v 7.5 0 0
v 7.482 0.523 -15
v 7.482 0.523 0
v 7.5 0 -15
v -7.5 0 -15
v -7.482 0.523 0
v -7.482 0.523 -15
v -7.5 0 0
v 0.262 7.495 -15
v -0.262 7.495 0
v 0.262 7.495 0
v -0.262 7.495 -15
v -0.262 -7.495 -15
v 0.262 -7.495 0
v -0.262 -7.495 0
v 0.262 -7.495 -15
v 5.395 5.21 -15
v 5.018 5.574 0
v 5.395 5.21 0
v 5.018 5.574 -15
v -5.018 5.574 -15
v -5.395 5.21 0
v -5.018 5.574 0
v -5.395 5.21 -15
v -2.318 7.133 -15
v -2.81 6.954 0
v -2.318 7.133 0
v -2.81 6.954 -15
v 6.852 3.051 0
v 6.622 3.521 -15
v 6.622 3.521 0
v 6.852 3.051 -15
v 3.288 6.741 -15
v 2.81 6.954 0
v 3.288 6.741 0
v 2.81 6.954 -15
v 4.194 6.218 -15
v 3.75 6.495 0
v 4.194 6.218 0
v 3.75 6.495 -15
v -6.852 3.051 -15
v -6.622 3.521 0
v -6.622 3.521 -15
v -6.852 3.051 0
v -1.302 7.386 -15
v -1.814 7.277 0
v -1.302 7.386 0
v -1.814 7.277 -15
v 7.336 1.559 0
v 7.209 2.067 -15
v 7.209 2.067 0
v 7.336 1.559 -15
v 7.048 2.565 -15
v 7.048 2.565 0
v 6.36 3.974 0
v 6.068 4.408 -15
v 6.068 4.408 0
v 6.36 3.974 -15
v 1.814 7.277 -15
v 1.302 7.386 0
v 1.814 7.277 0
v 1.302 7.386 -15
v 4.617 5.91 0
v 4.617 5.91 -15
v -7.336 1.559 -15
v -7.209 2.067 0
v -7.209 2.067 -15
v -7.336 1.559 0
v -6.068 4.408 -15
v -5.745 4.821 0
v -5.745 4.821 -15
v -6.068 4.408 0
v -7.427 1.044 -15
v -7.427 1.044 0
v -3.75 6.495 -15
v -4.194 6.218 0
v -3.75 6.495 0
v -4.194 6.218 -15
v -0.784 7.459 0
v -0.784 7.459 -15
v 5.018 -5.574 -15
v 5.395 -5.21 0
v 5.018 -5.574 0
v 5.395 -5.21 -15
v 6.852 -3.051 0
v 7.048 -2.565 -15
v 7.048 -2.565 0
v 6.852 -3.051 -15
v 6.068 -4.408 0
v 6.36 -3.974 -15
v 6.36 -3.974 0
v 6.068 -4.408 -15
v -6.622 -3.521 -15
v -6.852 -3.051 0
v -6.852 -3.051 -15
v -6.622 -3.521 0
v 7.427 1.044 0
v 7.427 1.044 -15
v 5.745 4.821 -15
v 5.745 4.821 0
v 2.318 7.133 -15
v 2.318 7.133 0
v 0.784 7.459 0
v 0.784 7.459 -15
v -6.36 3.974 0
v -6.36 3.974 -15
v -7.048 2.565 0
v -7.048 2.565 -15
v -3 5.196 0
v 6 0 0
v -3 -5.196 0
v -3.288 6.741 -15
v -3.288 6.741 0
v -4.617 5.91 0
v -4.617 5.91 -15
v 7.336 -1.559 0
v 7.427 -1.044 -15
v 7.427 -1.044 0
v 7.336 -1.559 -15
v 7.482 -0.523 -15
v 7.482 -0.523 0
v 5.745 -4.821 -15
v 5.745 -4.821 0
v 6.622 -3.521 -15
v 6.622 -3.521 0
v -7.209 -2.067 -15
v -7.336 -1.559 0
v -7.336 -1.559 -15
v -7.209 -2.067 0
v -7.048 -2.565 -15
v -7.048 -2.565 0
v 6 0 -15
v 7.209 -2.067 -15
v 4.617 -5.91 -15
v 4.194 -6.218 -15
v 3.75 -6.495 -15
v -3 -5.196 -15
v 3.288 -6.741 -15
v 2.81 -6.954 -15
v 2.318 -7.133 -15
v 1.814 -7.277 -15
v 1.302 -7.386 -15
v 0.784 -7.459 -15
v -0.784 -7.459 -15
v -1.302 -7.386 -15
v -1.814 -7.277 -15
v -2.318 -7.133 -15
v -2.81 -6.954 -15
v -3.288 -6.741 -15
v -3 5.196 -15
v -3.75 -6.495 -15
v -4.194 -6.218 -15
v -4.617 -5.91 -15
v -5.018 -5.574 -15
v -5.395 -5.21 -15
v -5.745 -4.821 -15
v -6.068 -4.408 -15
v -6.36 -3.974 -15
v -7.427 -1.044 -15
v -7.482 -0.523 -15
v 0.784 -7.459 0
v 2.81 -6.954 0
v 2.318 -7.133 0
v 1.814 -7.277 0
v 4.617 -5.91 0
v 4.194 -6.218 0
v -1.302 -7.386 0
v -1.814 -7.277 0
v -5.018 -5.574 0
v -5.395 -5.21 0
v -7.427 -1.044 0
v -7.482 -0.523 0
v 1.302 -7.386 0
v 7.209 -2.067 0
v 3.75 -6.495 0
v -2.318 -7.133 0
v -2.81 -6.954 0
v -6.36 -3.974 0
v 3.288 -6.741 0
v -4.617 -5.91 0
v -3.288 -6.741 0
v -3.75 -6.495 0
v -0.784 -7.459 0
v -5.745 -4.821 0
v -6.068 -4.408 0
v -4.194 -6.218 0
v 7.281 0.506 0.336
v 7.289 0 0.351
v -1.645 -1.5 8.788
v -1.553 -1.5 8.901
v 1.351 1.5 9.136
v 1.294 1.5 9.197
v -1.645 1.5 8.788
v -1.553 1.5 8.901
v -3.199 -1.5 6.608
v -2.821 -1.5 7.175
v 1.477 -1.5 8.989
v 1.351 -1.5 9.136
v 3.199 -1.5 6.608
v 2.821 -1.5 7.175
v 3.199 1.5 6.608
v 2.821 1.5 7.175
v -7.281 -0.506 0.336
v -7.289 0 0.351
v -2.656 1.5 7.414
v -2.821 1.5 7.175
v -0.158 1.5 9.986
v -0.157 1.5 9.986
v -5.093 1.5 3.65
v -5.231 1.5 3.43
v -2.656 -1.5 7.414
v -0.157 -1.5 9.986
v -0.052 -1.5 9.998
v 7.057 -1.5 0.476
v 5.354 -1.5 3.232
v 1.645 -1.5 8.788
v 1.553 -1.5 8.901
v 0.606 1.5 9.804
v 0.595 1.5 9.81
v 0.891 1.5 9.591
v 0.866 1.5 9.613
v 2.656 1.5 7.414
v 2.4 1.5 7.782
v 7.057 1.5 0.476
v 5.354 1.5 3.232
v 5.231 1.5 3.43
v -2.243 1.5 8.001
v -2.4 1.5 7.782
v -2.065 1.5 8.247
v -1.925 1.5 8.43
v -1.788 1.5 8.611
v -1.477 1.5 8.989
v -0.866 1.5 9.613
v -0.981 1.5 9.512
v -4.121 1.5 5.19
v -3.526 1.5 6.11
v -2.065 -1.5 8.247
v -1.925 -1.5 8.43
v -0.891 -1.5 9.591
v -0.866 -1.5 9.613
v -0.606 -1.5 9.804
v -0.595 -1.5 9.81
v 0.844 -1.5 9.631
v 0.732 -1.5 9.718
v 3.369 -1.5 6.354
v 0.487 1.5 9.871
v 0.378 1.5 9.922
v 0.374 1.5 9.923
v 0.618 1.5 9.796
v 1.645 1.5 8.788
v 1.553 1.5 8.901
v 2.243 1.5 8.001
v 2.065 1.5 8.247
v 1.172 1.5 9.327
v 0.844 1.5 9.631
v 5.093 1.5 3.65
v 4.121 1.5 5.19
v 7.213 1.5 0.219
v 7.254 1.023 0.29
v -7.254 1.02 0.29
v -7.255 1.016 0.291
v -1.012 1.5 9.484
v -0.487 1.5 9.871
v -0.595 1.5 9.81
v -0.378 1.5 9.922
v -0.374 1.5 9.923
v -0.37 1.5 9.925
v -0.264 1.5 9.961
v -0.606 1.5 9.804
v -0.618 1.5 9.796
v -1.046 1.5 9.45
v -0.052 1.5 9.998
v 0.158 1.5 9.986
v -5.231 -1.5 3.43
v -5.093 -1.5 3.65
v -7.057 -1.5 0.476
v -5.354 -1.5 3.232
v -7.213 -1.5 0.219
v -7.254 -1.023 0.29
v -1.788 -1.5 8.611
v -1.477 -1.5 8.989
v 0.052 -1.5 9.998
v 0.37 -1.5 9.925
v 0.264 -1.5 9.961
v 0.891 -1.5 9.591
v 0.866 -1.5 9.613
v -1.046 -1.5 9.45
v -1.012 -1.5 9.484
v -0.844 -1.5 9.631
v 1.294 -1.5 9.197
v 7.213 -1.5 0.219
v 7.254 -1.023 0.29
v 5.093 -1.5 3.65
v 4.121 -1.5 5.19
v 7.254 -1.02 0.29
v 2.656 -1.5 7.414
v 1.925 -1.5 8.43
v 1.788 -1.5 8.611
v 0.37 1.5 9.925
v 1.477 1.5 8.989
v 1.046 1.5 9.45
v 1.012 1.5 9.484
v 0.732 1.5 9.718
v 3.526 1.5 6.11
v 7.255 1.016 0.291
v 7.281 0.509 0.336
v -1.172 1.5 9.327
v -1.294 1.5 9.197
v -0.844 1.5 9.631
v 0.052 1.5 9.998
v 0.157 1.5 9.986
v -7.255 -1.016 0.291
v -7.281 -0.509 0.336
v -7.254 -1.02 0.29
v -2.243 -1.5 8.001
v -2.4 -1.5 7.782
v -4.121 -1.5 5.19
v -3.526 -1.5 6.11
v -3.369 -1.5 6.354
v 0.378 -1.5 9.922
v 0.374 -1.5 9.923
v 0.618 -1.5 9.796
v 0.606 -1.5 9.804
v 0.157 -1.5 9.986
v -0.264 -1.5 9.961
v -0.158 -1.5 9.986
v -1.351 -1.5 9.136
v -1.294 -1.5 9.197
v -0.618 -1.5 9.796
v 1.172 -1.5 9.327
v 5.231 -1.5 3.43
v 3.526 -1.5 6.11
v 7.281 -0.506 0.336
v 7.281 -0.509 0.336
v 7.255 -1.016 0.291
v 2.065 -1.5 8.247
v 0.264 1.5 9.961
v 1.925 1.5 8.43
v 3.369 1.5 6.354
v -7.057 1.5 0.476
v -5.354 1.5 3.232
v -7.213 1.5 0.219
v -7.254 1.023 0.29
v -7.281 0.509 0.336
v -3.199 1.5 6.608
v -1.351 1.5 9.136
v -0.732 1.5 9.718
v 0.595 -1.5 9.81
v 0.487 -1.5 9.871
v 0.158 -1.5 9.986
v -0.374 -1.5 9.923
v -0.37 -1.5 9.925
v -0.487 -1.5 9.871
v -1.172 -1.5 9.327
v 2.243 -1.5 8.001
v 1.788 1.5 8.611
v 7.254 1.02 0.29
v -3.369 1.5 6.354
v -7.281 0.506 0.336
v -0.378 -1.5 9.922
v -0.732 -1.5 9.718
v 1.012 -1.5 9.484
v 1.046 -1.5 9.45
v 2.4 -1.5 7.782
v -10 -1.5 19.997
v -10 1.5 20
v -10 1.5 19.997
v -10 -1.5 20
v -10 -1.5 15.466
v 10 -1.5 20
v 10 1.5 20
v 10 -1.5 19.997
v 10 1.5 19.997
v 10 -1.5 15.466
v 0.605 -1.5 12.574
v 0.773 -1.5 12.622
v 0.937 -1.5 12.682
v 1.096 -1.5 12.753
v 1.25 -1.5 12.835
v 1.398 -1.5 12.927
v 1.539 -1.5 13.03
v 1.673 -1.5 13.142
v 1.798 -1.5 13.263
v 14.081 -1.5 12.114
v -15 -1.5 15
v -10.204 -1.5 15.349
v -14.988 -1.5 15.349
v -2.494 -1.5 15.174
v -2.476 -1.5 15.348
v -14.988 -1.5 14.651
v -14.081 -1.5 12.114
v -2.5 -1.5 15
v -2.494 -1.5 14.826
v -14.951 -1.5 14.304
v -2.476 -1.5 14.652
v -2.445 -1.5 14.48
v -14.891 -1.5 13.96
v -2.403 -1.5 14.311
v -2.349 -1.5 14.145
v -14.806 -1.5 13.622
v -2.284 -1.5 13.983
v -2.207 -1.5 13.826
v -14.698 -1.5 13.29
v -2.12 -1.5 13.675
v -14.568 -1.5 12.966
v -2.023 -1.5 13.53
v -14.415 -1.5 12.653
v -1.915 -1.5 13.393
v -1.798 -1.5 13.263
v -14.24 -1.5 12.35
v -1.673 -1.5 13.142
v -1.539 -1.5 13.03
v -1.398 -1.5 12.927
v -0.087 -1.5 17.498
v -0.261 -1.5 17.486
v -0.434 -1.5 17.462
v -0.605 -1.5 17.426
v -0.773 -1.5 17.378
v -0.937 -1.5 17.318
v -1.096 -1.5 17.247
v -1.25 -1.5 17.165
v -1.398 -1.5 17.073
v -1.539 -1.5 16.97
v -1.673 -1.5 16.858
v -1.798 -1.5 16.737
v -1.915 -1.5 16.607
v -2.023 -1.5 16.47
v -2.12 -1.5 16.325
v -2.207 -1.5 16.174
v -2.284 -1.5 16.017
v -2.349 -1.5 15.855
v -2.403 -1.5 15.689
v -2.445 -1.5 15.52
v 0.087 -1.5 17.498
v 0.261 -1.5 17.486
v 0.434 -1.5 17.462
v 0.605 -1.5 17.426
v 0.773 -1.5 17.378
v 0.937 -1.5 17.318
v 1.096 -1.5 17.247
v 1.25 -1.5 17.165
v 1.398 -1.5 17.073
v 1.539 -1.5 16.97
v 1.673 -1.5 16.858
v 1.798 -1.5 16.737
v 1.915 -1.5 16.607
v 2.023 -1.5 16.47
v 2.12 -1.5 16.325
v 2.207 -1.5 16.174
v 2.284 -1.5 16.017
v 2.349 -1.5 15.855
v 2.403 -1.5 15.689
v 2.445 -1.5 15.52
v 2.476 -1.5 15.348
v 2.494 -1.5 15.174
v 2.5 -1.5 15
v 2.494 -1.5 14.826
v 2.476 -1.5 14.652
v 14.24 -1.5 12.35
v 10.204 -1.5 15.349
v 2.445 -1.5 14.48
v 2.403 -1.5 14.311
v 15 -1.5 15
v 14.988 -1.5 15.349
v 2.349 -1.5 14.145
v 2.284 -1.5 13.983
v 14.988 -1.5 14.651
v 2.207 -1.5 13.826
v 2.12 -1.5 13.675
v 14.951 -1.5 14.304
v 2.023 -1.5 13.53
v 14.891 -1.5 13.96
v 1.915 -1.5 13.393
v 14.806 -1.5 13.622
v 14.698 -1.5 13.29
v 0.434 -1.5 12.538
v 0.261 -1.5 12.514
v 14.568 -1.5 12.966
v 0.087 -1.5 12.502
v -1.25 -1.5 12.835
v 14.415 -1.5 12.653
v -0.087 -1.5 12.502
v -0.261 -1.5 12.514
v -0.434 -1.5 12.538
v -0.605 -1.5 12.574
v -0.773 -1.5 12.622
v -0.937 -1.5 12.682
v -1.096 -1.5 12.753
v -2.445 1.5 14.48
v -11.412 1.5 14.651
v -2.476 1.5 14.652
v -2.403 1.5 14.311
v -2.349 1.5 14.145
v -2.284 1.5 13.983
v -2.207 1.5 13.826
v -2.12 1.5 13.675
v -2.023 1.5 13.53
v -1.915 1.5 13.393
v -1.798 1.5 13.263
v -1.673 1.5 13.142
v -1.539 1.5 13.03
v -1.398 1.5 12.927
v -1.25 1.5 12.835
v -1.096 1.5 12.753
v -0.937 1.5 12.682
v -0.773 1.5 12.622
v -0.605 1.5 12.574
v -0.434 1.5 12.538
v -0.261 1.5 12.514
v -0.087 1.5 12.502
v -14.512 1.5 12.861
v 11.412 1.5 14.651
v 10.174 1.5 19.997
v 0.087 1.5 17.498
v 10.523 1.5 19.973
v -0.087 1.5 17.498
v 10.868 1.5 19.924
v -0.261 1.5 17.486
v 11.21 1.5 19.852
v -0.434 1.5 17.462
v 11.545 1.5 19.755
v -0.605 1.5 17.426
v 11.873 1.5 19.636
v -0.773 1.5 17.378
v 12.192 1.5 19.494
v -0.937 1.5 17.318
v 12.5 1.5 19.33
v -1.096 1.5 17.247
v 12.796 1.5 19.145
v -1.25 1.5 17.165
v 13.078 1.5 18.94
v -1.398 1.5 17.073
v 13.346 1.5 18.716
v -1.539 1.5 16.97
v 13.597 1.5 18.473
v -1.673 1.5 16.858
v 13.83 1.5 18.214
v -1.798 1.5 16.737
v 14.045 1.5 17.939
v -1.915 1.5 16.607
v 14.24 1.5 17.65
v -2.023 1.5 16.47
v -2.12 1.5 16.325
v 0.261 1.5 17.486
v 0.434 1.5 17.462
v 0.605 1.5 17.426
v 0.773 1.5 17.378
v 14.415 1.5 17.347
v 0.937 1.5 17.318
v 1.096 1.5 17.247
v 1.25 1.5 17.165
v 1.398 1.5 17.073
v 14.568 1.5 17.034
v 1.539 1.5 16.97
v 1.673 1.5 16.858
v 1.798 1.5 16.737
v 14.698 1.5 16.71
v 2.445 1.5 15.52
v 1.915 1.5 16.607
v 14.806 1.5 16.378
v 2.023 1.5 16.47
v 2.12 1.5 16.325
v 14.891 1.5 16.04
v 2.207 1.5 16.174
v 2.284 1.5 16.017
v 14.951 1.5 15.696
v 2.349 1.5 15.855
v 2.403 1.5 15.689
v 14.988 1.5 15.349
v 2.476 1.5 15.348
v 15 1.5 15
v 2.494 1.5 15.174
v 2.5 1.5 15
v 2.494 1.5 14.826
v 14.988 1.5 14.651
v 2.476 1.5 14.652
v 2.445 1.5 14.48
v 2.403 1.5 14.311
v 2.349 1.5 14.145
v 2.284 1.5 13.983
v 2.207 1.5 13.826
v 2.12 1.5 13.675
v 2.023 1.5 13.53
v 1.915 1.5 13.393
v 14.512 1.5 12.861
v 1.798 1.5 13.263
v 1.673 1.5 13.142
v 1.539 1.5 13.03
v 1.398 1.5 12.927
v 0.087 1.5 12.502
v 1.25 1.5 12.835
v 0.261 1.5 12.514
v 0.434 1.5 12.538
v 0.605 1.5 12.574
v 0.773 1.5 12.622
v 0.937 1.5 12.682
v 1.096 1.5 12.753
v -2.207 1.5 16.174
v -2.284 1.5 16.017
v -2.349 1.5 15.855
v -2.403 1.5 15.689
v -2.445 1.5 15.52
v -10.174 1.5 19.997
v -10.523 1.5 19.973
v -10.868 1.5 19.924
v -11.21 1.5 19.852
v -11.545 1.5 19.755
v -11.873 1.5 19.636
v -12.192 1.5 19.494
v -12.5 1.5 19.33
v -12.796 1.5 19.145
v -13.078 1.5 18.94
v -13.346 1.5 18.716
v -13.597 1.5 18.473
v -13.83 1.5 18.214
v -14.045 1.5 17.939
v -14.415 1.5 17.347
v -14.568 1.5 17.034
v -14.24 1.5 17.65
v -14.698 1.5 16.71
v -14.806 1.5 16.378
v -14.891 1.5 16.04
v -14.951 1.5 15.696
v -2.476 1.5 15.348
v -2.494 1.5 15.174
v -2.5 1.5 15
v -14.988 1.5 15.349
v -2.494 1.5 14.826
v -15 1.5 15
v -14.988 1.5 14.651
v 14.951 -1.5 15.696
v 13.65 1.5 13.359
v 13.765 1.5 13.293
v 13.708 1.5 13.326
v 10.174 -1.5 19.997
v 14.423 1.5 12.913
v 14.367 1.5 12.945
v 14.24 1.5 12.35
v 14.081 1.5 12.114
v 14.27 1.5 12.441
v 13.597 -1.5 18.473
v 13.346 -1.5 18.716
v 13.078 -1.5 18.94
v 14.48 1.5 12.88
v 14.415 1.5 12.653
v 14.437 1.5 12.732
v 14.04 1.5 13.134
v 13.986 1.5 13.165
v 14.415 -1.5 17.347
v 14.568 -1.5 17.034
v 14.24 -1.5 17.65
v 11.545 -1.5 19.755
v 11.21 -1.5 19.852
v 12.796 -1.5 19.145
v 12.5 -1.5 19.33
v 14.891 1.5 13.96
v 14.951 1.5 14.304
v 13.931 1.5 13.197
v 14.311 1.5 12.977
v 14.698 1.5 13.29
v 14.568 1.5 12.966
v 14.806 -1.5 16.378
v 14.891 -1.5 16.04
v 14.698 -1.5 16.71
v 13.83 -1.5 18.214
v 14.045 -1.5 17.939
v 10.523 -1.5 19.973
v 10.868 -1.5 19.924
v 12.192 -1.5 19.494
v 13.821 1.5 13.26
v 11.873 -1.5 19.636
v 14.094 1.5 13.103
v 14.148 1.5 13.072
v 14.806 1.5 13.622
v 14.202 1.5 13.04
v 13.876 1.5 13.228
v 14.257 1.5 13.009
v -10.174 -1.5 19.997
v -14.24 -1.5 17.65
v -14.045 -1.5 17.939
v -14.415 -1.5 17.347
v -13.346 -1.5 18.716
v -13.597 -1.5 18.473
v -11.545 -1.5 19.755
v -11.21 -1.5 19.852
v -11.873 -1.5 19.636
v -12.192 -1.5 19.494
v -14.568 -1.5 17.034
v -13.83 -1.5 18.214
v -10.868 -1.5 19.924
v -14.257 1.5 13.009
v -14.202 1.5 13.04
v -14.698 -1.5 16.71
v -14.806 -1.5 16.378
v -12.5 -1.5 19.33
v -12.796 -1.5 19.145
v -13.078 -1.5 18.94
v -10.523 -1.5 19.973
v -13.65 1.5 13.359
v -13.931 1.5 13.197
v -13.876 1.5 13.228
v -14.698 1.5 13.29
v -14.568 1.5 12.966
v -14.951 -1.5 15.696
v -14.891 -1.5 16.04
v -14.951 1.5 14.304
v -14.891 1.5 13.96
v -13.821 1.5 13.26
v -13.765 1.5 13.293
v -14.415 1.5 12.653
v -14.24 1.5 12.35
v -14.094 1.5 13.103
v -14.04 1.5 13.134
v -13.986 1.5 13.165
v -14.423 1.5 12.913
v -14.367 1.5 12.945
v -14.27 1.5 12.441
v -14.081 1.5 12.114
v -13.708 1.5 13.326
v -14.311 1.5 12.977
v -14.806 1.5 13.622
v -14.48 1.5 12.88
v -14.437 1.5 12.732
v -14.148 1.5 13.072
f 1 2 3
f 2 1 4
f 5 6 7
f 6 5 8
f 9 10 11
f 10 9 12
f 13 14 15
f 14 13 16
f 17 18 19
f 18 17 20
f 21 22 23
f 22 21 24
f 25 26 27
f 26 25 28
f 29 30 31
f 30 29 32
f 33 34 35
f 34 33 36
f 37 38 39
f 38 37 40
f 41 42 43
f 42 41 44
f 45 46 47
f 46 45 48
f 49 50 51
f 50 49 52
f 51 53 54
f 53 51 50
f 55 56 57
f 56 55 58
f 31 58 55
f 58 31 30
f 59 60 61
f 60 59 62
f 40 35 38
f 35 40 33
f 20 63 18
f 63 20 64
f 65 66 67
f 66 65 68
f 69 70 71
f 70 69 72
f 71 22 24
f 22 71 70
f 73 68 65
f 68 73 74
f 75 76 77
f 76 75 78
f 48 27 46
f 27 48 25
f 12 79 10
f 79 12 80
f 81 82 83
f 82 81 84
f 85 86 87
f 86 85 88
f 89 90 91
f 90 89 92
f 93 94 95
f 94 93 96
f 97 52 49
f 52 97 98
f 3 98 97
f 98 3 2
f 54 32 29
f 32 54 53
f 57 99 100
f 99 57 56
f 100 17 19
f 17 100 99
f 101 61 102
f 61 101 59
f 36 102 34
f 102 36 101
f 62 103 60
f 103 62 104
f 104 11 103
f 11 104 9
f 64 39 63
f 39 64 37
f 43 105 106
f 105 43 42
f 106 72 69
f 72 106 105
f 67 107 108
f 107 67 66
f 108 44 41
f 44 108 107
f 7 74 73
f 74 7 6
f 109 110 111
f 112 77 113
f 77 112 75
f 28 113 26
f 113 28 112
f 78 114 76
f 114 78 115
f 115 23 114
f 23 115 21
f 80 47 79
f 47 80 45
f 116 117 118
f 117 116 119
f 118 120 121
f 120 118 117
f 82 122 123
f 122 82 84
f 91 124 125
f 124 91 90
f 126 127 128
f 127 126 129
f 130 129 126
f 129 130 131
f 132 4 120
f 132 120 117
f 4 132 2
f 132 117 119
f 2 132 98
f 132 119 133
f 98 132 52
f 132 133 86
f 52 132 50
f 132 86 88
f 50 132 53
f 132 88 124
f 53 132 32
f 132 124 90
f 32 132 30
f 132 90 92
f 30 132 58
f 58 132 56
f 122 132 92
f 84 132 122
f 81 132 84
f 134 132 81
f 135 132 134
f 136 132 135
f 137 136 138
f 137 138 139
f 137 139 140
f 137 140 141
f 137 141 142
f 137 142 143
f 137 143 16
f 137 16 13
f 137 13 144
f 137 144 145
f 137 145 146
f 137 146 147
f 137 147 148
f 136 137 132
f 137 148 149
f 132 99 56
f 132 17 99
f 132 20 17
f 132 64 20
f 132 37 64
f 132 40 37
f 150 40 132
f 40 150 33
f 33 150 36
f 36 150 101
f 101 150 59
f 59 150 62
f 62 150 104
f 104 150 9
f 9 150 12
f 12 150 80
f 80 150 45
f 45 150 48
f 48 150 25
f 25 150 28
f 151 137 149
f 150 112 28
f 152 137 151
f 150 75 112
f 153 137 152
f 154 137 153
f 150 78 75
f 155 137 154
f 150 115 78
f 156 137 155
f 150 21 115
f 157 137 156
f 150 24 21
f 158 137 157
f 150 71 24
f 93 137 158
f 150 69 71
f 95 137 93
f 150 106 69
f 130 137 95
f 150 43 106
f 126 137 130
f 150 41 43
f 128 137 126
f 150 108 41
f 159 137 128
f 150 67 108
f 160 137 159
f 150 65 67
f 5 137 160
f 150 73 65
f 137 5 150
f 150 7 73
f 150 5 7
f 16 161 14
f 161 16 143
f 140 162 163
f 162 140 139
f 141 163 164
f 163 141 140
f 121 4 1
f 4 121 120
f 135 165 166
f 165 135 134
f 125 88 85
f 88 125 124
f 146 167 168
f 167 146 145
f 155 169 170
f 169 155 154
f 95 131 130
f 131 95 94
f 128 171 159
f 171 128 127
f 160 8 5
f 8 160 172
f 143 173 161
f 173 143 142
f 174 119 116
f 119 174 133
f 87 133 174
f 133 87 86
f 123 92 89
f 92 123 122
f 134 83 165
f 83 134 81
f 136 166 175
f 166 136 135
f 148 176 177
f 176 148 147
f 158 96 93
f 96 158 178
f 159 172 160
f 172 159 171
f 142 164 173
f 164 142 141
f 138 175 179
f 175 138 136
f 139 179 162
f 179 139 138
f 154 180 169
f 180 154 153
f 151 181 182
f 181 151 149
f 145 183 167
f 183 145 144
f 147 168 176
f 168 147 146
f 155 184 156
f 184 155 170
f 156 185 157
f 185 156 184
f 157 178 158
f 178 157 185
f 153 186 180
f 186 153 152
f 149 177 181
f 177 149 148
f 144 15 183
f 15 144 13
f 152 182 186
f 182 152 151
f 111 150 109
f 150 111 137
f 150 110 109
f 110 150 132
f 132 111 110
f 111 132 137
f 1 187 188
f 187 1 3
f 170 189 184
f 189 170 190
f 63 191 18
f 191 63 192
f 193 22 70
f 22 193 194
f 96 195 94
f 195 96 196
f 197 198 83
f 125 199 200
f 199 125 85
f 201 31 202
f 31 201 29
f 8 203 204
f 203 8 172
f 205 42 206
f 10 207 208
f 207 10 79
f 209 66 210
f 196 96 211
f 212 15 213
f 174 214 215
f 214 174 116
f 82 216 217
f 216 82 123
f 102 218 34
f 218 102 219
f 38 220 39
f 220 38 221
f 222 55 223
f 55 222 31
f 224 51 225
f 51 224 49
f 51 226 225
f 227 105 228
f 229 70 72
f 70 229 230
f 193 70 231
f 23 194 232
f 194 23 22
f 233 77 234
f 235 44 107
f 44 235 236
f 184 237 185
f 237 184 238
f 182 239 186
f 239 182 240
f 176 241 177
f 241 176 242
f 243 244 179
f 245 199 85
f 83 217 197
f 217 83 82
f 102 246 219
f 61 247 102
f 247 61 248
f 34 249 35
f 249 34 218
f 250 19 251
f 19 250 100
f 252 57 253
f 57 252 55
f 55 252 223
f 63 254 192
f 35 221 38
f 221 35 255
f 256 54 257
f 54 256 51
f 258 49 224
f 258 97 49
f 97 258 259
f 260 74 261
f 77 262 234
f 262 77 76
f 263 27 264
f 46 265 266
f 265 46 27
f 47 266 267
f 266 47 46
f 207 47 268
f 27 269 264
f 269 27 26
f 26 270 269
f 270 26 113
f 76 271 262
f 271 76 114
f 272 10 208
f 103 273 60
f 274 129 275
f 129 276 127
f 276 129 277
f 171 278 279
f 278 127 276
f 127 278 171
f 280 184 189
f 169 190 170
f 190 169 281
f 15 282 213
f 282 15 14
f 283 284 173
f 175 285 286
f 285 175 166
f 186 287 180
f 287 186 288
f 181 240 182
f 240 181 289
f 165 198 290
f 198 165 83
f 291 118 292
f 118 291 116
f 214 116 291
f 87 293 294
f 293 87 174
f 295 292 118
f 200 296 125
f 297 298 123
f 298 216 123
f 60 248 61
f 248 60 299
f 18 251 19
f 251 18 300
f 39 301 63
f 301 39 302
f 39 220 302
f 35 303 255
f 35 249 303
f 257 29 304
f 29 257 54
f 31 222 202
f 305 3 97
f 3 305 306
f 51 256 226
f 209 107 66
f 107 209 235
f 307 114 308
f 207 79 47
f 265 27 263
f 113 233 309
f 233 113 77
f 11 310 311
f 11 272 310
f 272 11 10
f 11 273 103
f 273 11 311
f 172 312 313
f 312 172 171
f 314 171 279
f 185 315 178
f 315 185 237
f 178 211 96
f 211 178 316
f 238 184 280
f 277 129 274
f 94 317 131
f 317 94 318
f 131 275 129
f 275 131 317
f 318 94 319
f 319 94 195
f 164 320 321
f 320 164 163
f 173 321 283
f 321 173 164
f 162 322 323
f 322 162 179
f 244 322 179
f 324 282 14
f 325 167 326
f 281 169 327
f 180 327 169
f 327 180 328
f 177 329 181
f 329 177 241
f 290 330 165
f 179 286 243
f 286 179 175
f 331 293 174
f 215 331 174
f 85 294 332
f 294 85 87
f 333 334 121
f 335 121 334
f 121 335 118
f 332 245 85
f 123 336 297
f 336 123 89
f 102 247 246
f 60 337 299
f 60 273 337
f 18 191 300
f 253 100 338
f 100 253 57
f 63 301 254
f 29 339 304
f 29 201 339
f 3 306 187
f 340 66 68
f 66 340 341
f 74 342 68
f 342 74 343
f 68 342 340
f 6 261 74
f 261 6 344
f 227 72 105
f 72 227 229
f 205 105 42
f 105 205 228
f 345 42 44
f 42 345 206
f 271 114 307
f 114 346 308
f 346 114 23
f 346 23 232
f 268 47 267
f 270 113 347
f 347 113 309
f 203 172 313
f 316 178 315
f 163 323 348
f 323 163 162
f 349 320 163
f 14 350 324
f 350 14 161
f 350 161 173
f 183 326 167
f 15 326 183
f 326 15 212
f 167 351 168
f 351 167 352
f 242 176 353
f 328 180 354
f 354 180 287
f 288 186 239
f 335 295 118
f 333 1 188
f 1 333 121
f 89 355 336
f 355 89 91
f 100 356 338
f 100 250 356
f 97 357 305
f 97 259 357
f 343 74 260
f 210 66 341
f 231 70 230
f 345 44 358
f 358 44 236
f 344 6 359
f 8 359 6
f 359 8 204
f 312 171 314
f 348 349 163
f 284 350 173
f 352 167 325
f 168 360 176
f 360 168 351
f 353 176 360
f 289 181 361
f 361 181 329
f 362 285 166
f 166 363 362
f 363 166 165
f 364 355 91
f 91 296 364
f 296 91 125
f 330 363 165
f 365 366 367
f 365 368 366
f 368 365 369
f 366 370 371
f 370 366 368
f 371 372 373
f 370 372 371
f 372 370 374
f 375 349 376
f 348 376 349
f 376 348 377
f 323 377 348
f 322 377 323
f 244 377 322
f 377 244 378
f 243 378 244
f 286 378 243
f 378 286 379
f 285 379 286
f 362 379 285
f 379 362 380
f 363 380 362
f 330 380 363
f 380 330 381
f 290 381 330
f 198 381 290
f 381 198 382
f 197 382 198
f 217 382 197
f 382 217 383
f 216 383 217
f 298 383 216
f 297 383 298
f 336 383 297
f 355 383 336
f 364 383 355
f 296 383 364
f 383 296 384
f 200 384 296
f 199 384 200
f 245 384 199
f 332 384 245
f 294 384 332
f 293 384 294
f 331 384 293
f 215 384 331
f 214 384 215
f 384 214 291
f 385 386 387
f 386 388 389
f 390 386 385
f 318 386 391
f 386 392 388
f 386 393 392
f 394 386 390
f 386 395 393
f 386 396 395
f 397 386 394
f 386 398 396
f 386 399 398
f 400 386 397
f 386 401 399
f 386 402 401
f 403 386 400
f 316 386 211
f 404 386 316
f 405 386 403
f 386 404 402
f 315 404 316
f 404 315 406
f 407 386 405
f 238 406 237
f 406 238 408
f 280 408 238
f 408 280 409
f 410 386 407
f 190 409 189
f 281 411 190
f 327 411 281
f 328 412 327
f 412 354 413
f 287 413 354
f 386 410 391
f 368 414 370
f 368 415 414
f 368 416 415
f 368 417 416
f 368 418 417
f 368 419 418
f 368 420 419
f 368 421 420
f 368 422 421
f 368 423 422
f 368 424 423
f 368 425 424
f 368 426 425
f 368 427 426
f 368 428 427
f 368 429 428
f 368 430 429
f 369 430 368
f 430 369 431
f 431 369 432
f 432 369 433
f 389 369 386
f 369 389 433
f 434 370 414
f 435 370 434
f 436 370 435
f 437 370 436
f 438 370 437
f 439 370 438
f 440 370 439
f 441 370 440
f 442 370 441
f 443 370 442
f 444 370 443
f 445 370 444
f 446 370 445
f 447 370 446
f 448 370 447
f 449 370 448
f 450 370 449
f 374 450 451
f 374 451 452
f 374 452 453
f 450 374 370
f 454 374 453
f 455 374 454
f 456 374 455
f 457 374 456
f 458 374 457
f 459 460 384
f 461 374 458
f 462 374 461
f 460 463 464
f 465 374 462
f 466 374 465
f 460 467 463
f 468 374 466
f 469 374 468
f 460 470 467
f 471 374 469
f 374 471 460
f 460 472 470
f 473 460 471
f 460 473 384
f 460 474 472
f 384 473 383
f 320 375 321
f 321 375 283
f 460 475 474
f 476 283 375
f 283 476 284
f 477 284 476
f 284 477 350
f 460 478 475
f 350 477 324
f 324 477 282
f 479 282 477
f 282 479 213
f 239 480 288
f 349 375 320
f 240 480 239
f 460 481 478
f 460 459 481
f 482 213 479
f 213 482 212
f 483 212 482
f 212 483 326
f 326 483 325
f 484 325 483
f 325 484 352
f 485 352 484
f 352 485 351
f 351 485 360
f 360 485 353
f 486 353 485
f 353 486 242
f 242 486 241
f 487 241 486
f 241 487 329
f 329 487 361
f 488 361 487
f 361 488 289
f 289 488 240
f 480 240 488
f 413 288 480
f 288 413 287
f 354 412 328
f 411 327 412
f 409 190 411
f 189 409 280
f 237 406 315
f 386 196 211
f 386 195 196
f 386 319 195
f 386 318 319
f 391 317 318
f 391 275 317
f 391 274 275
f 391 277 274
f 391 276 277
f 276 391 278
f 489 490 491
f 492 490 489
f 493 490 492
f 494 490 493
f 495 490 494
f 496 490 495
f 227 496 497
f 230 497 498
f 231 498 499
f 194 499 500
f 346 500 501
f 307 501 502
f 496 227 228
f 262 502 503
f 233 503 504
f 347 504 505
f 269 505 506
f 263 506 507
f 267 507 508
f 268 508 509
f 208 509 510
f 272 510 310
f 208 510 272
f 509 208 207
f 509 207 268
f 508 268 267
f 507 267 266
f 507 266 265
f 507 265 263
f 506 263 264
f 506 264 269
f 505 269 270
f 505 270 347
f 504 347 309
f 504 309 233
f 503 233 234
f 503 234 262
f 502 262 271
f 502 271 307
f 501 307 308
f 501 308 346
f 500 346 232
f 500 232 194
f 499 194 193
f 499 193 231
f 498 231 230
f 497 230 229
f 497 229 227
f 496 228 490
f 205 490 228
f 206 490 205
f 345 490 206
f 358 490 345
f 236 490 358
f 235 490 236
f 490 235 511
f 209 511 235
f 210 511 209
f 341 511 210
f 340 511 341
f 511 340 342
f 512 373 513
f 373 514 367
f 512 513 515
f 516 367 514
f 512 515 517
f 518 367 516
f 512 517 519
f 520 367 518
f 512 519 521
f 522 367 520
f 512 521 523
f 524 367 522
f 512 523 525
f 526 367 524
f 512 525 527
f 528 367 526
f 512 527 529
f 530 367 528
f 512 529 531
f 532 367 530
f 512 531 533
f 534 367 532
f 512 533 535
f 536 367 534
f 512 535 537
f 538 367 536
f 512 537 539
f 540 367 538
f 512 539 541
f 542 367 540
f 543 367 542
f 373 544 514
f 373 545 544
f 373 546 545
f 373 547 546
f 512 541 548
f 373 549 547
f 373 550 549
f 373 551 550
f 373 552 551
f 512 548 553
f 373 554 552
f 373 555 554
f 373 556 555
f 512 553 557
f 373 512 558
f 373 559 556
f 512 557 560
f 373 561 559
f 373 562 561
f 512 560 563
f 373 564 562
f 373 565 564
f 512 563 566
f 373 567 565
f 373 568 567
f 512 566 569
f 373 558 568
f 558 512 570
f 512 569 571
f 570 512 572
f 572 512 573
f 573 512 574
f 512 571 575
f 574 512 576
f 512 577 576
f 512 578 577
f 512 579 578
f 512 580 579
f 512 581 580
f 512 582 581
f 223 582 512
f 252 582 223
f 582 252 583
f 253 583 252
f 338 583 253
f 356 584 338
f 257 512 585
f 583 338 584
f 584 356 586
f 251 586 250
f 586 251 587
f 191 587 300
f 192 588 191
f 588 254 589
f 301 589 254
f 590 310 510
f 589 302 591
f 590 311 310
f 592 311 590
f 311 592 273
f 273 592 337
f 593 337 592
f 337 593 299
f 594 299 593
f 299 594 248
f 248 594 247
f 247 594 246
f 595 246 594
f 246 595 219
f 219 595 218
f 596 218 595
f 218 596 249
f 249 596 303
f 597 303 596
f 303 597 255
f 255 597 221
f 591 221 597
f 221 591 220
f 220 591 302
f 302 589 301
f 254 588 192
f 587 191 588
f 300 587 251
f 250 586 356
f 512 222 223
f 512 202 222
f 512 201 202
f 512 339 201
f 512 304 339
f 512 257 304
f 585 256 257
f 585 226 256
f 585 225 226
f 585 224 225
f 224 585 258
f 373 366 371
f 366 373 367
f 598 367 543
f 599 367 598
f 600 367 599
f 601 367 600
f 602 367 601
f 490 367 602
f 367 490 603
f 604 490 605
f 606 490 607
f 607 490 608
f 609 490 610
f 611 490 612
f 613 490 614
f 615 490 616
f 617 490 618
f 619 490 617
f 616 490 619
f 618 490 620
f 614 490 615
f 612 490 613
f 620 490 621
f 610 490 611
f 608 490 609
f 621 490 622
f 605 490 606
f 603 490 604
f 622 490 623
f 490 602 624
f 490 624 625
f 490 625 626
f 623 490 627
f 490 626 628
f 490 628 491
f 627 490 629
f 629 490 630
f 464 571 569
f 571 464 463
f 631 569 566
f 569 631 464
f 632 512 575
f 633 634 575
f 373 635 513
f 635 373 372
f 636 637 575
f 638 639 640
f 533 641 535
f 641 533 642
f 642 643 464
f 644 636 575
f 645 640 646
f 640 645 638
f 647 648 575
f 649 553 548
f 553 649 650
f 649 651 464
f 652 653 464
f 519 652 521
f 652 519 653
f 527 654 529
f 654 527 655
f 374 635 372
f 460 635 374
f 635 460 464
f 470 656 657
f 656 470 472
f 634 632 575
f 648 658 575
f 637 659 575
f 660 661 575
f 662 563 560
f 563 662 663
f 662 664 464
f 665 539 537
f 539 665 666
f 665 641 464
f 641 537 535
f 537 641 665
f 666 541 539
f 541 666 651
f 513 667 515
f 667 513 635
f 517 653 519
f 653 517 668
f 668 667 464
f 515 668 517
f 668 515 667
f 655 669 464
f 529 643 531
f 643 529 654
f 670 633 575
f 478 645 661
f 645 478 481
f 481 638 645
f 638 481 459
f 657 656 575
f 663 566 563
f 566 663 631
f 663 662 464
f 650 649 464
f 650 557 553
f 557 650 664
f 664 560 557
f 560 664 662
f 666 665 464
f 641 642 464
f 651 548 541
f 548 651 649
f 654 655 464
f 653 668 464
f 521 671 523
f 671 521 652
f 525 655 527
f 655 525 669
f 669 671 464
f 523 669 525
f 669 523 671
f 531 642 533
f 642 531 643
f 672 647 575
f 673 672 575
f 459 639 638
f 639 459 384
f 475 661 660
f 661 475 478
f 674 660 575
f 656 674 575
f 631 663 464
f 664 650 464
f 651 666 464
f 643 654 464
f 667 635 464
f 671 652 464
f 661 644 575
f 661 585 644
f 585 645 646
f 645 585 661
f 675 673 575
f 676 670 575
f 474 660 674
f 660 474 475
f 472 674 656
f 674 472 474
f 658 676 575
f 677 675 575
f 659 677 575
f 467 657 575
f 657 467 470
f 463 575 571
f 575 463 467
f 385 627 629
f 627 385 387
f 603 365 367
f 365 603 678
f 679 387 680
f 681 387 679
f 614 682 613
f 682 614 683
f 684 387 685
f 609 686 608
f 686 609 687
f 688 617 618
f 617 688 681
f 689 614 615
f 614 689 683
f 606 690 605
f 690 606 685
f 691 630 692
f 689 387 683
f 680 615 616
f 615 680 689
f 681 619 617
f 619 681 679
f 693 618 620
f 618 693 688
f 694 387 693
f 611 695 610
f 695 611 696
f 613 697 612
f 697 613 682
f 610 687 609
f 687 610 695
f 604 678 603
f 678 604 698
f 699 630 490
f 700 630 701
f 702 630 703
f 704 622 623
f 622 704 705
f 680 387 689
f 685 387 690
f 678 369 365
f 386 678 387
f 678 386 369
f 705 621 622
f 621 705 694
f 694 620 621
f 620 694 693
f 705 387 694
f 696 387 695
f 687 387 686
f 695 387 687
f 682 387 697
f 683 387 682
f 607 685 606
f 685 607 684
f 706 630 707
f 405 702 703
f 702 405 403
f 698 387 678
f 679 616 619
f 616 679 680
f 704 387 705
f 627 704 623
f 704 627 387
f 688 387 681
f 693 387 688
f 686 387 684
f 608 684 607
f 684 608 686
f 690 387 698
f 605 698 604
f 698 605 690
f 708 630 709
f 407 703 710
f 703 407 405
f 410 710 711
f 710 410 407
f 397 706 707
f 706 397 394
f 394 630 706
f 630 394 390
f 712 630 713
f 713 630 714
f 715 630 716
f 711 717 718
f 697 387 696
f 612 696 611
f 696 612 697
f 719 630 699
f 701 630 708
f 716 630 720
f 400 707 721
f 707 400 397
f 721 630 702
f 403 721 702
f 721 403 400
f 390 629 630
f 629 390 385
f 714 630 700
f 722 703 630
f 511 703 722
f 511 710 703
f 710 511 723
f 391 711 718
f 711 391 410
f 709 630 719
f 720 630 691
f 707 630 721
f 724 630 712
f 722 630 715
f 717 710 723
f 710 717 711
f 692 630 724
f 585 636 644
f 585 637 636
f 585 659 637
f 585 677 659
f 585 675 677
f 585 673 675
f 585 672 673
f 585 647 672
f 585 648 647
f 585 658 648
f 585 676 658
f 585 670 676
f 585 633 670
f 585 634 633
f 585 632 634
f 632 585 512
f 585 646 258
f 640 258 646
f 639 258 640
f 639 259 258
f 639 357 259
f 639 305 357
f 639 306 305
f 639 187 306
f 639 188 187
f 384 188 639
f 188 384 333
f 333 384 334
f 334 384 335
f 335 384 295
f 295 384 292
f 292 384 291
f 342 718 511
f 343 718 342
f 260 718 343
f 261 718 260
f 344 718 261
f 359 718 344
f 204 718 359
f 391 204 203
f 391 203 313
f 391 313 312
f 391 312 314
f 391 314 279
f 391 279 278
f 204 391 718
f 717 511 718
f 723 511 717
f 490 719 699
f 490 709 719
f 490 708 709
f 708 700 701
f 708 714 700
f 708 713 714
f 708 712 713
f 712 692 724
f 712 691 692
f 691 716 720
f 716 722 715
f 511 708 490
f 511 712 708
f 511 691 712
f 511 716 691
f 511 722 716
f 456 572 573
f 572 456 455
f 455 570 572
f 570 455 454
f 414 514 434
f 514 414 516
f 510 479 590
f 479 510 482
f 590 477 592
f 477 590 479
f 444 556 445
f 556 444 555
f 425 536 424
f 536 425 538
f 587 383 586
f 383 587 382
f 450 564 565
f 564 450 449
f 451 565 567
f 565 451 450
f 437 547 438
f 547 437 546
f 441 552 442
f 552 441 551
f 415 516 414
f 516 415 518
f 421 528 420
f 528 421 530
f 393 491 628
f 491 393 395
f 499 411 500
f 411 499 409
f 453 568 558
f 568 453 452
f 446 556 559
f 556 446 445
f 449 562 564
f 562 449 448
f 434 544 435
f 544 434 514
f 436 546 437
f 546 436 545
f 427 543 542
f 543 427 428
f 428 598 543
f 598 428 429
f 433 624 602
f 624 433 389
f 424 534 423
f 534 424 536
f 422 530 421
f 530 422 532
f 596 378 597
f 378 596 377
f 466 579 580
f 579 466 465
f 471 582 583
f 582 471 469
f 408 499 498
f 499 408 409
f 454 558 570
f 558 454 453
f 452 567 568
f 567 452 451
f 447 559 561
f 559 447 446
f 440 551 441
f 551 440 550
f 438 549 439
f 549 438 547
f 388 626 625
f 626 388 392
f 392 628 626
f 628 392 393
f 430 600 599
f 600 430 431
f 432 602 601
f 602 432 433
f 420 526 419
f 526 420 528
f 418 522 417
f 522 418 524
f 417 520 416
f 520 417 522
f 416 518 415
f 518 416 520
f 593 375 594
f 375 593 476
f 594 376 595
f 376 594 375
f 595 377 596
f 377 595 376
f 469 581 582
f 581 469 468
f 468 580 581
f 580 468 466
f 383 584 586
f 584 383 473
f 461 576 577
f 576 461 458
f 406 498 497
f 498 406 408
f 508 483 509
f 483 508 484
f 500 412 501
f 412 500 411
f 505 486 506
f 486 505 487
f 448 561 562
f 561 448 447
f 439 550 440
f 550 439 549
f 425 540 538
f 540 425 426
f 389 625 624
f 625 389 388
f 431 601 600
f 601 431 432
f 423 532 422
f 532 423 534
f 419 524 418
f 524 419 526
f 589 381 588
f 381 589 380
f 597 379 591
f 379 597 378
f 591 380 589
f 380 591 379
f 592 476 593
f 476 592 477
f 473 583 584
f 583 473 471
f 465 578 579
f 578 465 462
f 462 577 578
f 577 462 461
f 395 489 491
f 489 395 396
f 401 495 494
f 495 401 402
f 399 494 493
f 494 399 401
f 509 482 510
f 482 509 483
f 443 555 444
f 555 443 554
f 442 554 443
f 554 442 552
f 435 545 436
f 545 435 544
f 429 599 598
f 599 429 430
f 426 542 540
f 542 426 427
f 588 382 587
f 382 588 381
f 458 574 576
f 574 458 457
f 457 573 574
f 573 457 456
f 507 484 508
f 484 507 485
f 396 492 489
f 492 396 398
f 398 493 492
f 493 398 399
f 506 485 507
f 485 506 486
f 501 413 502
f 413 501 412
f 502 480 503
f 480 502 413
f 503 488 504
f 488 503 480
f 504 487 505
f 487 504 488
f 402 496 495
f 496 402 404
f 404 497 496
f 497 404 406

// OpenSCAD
/*
 * Copyright 2020 Phil Haigh
 *
 * Licensed under the Apache License, Version 2.0 (the "License");
 * you may not use this file except in compliance with the License.
 * You may obtain a copy of the License at
 *
 * http://www.apache.org/licenses/LICENSE-2.0
 *
 * Unless required by applicable law or agreed to in writing, software
 * distributed under the License is distributed on an "AS IS" BASIS,
 * WITHOUT WARRANTIES OR CONDITIONS OF ANY KIND, either express or implied.
 * See the License for the specific language governing permissions and
 * limitations under the License.
 */

$fn = 90;

bladeDepth = 15;
outerRadius = 7.5;
innerRadius = 6;
bladeTopWidth = 10;
bowHeight = 20;
bowWidth = 30;
bowRadius = 5;
bowDepth = 3;

translate([0, 0, - bladeDepth / 2])
    difference() {
        cylinder(bladeDepth, outerRadius, outerRadius, center = true);
        cylinder(bladeDepth, innerRadius, innerRadius, center = true, $fn=3);
    }

intersection() {
    translate([0, 0, 20]) cube([40, 40, 40], center=true);
    difference() {
        union() {
            translate([0, 0, bladeTopWidth / 2]) cylinder(bladeTopWidth, outerRadius, bowDepth / 2, center = true);
            translate([0, 0, bowHeight - bowRadius]) cube([bowWidth - (bowRadius * 2), bowDepth, bowRadius * 2], center=true);
            translate([(bowWidth / 2) - bowRadius, 0, bowHeight - bowRadius]) rotate([90, 0, 0]) cylinder(bowDepth, bowRadius, bowRadius, center=true);
            translate([-(bowWidth / 2) + bowRadius, 0, bowHeight - bowRadius]) rotate([90, 0, 0]) cylinder(bowDepth, bowRadius, bowRadius, center=true);
            translate([4.2, 0, 9]) rotate([0, 30, 0]) cube([14, bowDepth, 17], center=true);
            translate([-4.2, 0, 9]) rotate([0, -30, 0]) cube([14, bowDepth, 17], center=true);
        };
        translate([0, 0, bowHeight - bowRadius]) rotate([90, 0, 0]) cylinder(bowDepth + 1, bowRadius / 2, bowRadius / 2, center=true);
    };
};
